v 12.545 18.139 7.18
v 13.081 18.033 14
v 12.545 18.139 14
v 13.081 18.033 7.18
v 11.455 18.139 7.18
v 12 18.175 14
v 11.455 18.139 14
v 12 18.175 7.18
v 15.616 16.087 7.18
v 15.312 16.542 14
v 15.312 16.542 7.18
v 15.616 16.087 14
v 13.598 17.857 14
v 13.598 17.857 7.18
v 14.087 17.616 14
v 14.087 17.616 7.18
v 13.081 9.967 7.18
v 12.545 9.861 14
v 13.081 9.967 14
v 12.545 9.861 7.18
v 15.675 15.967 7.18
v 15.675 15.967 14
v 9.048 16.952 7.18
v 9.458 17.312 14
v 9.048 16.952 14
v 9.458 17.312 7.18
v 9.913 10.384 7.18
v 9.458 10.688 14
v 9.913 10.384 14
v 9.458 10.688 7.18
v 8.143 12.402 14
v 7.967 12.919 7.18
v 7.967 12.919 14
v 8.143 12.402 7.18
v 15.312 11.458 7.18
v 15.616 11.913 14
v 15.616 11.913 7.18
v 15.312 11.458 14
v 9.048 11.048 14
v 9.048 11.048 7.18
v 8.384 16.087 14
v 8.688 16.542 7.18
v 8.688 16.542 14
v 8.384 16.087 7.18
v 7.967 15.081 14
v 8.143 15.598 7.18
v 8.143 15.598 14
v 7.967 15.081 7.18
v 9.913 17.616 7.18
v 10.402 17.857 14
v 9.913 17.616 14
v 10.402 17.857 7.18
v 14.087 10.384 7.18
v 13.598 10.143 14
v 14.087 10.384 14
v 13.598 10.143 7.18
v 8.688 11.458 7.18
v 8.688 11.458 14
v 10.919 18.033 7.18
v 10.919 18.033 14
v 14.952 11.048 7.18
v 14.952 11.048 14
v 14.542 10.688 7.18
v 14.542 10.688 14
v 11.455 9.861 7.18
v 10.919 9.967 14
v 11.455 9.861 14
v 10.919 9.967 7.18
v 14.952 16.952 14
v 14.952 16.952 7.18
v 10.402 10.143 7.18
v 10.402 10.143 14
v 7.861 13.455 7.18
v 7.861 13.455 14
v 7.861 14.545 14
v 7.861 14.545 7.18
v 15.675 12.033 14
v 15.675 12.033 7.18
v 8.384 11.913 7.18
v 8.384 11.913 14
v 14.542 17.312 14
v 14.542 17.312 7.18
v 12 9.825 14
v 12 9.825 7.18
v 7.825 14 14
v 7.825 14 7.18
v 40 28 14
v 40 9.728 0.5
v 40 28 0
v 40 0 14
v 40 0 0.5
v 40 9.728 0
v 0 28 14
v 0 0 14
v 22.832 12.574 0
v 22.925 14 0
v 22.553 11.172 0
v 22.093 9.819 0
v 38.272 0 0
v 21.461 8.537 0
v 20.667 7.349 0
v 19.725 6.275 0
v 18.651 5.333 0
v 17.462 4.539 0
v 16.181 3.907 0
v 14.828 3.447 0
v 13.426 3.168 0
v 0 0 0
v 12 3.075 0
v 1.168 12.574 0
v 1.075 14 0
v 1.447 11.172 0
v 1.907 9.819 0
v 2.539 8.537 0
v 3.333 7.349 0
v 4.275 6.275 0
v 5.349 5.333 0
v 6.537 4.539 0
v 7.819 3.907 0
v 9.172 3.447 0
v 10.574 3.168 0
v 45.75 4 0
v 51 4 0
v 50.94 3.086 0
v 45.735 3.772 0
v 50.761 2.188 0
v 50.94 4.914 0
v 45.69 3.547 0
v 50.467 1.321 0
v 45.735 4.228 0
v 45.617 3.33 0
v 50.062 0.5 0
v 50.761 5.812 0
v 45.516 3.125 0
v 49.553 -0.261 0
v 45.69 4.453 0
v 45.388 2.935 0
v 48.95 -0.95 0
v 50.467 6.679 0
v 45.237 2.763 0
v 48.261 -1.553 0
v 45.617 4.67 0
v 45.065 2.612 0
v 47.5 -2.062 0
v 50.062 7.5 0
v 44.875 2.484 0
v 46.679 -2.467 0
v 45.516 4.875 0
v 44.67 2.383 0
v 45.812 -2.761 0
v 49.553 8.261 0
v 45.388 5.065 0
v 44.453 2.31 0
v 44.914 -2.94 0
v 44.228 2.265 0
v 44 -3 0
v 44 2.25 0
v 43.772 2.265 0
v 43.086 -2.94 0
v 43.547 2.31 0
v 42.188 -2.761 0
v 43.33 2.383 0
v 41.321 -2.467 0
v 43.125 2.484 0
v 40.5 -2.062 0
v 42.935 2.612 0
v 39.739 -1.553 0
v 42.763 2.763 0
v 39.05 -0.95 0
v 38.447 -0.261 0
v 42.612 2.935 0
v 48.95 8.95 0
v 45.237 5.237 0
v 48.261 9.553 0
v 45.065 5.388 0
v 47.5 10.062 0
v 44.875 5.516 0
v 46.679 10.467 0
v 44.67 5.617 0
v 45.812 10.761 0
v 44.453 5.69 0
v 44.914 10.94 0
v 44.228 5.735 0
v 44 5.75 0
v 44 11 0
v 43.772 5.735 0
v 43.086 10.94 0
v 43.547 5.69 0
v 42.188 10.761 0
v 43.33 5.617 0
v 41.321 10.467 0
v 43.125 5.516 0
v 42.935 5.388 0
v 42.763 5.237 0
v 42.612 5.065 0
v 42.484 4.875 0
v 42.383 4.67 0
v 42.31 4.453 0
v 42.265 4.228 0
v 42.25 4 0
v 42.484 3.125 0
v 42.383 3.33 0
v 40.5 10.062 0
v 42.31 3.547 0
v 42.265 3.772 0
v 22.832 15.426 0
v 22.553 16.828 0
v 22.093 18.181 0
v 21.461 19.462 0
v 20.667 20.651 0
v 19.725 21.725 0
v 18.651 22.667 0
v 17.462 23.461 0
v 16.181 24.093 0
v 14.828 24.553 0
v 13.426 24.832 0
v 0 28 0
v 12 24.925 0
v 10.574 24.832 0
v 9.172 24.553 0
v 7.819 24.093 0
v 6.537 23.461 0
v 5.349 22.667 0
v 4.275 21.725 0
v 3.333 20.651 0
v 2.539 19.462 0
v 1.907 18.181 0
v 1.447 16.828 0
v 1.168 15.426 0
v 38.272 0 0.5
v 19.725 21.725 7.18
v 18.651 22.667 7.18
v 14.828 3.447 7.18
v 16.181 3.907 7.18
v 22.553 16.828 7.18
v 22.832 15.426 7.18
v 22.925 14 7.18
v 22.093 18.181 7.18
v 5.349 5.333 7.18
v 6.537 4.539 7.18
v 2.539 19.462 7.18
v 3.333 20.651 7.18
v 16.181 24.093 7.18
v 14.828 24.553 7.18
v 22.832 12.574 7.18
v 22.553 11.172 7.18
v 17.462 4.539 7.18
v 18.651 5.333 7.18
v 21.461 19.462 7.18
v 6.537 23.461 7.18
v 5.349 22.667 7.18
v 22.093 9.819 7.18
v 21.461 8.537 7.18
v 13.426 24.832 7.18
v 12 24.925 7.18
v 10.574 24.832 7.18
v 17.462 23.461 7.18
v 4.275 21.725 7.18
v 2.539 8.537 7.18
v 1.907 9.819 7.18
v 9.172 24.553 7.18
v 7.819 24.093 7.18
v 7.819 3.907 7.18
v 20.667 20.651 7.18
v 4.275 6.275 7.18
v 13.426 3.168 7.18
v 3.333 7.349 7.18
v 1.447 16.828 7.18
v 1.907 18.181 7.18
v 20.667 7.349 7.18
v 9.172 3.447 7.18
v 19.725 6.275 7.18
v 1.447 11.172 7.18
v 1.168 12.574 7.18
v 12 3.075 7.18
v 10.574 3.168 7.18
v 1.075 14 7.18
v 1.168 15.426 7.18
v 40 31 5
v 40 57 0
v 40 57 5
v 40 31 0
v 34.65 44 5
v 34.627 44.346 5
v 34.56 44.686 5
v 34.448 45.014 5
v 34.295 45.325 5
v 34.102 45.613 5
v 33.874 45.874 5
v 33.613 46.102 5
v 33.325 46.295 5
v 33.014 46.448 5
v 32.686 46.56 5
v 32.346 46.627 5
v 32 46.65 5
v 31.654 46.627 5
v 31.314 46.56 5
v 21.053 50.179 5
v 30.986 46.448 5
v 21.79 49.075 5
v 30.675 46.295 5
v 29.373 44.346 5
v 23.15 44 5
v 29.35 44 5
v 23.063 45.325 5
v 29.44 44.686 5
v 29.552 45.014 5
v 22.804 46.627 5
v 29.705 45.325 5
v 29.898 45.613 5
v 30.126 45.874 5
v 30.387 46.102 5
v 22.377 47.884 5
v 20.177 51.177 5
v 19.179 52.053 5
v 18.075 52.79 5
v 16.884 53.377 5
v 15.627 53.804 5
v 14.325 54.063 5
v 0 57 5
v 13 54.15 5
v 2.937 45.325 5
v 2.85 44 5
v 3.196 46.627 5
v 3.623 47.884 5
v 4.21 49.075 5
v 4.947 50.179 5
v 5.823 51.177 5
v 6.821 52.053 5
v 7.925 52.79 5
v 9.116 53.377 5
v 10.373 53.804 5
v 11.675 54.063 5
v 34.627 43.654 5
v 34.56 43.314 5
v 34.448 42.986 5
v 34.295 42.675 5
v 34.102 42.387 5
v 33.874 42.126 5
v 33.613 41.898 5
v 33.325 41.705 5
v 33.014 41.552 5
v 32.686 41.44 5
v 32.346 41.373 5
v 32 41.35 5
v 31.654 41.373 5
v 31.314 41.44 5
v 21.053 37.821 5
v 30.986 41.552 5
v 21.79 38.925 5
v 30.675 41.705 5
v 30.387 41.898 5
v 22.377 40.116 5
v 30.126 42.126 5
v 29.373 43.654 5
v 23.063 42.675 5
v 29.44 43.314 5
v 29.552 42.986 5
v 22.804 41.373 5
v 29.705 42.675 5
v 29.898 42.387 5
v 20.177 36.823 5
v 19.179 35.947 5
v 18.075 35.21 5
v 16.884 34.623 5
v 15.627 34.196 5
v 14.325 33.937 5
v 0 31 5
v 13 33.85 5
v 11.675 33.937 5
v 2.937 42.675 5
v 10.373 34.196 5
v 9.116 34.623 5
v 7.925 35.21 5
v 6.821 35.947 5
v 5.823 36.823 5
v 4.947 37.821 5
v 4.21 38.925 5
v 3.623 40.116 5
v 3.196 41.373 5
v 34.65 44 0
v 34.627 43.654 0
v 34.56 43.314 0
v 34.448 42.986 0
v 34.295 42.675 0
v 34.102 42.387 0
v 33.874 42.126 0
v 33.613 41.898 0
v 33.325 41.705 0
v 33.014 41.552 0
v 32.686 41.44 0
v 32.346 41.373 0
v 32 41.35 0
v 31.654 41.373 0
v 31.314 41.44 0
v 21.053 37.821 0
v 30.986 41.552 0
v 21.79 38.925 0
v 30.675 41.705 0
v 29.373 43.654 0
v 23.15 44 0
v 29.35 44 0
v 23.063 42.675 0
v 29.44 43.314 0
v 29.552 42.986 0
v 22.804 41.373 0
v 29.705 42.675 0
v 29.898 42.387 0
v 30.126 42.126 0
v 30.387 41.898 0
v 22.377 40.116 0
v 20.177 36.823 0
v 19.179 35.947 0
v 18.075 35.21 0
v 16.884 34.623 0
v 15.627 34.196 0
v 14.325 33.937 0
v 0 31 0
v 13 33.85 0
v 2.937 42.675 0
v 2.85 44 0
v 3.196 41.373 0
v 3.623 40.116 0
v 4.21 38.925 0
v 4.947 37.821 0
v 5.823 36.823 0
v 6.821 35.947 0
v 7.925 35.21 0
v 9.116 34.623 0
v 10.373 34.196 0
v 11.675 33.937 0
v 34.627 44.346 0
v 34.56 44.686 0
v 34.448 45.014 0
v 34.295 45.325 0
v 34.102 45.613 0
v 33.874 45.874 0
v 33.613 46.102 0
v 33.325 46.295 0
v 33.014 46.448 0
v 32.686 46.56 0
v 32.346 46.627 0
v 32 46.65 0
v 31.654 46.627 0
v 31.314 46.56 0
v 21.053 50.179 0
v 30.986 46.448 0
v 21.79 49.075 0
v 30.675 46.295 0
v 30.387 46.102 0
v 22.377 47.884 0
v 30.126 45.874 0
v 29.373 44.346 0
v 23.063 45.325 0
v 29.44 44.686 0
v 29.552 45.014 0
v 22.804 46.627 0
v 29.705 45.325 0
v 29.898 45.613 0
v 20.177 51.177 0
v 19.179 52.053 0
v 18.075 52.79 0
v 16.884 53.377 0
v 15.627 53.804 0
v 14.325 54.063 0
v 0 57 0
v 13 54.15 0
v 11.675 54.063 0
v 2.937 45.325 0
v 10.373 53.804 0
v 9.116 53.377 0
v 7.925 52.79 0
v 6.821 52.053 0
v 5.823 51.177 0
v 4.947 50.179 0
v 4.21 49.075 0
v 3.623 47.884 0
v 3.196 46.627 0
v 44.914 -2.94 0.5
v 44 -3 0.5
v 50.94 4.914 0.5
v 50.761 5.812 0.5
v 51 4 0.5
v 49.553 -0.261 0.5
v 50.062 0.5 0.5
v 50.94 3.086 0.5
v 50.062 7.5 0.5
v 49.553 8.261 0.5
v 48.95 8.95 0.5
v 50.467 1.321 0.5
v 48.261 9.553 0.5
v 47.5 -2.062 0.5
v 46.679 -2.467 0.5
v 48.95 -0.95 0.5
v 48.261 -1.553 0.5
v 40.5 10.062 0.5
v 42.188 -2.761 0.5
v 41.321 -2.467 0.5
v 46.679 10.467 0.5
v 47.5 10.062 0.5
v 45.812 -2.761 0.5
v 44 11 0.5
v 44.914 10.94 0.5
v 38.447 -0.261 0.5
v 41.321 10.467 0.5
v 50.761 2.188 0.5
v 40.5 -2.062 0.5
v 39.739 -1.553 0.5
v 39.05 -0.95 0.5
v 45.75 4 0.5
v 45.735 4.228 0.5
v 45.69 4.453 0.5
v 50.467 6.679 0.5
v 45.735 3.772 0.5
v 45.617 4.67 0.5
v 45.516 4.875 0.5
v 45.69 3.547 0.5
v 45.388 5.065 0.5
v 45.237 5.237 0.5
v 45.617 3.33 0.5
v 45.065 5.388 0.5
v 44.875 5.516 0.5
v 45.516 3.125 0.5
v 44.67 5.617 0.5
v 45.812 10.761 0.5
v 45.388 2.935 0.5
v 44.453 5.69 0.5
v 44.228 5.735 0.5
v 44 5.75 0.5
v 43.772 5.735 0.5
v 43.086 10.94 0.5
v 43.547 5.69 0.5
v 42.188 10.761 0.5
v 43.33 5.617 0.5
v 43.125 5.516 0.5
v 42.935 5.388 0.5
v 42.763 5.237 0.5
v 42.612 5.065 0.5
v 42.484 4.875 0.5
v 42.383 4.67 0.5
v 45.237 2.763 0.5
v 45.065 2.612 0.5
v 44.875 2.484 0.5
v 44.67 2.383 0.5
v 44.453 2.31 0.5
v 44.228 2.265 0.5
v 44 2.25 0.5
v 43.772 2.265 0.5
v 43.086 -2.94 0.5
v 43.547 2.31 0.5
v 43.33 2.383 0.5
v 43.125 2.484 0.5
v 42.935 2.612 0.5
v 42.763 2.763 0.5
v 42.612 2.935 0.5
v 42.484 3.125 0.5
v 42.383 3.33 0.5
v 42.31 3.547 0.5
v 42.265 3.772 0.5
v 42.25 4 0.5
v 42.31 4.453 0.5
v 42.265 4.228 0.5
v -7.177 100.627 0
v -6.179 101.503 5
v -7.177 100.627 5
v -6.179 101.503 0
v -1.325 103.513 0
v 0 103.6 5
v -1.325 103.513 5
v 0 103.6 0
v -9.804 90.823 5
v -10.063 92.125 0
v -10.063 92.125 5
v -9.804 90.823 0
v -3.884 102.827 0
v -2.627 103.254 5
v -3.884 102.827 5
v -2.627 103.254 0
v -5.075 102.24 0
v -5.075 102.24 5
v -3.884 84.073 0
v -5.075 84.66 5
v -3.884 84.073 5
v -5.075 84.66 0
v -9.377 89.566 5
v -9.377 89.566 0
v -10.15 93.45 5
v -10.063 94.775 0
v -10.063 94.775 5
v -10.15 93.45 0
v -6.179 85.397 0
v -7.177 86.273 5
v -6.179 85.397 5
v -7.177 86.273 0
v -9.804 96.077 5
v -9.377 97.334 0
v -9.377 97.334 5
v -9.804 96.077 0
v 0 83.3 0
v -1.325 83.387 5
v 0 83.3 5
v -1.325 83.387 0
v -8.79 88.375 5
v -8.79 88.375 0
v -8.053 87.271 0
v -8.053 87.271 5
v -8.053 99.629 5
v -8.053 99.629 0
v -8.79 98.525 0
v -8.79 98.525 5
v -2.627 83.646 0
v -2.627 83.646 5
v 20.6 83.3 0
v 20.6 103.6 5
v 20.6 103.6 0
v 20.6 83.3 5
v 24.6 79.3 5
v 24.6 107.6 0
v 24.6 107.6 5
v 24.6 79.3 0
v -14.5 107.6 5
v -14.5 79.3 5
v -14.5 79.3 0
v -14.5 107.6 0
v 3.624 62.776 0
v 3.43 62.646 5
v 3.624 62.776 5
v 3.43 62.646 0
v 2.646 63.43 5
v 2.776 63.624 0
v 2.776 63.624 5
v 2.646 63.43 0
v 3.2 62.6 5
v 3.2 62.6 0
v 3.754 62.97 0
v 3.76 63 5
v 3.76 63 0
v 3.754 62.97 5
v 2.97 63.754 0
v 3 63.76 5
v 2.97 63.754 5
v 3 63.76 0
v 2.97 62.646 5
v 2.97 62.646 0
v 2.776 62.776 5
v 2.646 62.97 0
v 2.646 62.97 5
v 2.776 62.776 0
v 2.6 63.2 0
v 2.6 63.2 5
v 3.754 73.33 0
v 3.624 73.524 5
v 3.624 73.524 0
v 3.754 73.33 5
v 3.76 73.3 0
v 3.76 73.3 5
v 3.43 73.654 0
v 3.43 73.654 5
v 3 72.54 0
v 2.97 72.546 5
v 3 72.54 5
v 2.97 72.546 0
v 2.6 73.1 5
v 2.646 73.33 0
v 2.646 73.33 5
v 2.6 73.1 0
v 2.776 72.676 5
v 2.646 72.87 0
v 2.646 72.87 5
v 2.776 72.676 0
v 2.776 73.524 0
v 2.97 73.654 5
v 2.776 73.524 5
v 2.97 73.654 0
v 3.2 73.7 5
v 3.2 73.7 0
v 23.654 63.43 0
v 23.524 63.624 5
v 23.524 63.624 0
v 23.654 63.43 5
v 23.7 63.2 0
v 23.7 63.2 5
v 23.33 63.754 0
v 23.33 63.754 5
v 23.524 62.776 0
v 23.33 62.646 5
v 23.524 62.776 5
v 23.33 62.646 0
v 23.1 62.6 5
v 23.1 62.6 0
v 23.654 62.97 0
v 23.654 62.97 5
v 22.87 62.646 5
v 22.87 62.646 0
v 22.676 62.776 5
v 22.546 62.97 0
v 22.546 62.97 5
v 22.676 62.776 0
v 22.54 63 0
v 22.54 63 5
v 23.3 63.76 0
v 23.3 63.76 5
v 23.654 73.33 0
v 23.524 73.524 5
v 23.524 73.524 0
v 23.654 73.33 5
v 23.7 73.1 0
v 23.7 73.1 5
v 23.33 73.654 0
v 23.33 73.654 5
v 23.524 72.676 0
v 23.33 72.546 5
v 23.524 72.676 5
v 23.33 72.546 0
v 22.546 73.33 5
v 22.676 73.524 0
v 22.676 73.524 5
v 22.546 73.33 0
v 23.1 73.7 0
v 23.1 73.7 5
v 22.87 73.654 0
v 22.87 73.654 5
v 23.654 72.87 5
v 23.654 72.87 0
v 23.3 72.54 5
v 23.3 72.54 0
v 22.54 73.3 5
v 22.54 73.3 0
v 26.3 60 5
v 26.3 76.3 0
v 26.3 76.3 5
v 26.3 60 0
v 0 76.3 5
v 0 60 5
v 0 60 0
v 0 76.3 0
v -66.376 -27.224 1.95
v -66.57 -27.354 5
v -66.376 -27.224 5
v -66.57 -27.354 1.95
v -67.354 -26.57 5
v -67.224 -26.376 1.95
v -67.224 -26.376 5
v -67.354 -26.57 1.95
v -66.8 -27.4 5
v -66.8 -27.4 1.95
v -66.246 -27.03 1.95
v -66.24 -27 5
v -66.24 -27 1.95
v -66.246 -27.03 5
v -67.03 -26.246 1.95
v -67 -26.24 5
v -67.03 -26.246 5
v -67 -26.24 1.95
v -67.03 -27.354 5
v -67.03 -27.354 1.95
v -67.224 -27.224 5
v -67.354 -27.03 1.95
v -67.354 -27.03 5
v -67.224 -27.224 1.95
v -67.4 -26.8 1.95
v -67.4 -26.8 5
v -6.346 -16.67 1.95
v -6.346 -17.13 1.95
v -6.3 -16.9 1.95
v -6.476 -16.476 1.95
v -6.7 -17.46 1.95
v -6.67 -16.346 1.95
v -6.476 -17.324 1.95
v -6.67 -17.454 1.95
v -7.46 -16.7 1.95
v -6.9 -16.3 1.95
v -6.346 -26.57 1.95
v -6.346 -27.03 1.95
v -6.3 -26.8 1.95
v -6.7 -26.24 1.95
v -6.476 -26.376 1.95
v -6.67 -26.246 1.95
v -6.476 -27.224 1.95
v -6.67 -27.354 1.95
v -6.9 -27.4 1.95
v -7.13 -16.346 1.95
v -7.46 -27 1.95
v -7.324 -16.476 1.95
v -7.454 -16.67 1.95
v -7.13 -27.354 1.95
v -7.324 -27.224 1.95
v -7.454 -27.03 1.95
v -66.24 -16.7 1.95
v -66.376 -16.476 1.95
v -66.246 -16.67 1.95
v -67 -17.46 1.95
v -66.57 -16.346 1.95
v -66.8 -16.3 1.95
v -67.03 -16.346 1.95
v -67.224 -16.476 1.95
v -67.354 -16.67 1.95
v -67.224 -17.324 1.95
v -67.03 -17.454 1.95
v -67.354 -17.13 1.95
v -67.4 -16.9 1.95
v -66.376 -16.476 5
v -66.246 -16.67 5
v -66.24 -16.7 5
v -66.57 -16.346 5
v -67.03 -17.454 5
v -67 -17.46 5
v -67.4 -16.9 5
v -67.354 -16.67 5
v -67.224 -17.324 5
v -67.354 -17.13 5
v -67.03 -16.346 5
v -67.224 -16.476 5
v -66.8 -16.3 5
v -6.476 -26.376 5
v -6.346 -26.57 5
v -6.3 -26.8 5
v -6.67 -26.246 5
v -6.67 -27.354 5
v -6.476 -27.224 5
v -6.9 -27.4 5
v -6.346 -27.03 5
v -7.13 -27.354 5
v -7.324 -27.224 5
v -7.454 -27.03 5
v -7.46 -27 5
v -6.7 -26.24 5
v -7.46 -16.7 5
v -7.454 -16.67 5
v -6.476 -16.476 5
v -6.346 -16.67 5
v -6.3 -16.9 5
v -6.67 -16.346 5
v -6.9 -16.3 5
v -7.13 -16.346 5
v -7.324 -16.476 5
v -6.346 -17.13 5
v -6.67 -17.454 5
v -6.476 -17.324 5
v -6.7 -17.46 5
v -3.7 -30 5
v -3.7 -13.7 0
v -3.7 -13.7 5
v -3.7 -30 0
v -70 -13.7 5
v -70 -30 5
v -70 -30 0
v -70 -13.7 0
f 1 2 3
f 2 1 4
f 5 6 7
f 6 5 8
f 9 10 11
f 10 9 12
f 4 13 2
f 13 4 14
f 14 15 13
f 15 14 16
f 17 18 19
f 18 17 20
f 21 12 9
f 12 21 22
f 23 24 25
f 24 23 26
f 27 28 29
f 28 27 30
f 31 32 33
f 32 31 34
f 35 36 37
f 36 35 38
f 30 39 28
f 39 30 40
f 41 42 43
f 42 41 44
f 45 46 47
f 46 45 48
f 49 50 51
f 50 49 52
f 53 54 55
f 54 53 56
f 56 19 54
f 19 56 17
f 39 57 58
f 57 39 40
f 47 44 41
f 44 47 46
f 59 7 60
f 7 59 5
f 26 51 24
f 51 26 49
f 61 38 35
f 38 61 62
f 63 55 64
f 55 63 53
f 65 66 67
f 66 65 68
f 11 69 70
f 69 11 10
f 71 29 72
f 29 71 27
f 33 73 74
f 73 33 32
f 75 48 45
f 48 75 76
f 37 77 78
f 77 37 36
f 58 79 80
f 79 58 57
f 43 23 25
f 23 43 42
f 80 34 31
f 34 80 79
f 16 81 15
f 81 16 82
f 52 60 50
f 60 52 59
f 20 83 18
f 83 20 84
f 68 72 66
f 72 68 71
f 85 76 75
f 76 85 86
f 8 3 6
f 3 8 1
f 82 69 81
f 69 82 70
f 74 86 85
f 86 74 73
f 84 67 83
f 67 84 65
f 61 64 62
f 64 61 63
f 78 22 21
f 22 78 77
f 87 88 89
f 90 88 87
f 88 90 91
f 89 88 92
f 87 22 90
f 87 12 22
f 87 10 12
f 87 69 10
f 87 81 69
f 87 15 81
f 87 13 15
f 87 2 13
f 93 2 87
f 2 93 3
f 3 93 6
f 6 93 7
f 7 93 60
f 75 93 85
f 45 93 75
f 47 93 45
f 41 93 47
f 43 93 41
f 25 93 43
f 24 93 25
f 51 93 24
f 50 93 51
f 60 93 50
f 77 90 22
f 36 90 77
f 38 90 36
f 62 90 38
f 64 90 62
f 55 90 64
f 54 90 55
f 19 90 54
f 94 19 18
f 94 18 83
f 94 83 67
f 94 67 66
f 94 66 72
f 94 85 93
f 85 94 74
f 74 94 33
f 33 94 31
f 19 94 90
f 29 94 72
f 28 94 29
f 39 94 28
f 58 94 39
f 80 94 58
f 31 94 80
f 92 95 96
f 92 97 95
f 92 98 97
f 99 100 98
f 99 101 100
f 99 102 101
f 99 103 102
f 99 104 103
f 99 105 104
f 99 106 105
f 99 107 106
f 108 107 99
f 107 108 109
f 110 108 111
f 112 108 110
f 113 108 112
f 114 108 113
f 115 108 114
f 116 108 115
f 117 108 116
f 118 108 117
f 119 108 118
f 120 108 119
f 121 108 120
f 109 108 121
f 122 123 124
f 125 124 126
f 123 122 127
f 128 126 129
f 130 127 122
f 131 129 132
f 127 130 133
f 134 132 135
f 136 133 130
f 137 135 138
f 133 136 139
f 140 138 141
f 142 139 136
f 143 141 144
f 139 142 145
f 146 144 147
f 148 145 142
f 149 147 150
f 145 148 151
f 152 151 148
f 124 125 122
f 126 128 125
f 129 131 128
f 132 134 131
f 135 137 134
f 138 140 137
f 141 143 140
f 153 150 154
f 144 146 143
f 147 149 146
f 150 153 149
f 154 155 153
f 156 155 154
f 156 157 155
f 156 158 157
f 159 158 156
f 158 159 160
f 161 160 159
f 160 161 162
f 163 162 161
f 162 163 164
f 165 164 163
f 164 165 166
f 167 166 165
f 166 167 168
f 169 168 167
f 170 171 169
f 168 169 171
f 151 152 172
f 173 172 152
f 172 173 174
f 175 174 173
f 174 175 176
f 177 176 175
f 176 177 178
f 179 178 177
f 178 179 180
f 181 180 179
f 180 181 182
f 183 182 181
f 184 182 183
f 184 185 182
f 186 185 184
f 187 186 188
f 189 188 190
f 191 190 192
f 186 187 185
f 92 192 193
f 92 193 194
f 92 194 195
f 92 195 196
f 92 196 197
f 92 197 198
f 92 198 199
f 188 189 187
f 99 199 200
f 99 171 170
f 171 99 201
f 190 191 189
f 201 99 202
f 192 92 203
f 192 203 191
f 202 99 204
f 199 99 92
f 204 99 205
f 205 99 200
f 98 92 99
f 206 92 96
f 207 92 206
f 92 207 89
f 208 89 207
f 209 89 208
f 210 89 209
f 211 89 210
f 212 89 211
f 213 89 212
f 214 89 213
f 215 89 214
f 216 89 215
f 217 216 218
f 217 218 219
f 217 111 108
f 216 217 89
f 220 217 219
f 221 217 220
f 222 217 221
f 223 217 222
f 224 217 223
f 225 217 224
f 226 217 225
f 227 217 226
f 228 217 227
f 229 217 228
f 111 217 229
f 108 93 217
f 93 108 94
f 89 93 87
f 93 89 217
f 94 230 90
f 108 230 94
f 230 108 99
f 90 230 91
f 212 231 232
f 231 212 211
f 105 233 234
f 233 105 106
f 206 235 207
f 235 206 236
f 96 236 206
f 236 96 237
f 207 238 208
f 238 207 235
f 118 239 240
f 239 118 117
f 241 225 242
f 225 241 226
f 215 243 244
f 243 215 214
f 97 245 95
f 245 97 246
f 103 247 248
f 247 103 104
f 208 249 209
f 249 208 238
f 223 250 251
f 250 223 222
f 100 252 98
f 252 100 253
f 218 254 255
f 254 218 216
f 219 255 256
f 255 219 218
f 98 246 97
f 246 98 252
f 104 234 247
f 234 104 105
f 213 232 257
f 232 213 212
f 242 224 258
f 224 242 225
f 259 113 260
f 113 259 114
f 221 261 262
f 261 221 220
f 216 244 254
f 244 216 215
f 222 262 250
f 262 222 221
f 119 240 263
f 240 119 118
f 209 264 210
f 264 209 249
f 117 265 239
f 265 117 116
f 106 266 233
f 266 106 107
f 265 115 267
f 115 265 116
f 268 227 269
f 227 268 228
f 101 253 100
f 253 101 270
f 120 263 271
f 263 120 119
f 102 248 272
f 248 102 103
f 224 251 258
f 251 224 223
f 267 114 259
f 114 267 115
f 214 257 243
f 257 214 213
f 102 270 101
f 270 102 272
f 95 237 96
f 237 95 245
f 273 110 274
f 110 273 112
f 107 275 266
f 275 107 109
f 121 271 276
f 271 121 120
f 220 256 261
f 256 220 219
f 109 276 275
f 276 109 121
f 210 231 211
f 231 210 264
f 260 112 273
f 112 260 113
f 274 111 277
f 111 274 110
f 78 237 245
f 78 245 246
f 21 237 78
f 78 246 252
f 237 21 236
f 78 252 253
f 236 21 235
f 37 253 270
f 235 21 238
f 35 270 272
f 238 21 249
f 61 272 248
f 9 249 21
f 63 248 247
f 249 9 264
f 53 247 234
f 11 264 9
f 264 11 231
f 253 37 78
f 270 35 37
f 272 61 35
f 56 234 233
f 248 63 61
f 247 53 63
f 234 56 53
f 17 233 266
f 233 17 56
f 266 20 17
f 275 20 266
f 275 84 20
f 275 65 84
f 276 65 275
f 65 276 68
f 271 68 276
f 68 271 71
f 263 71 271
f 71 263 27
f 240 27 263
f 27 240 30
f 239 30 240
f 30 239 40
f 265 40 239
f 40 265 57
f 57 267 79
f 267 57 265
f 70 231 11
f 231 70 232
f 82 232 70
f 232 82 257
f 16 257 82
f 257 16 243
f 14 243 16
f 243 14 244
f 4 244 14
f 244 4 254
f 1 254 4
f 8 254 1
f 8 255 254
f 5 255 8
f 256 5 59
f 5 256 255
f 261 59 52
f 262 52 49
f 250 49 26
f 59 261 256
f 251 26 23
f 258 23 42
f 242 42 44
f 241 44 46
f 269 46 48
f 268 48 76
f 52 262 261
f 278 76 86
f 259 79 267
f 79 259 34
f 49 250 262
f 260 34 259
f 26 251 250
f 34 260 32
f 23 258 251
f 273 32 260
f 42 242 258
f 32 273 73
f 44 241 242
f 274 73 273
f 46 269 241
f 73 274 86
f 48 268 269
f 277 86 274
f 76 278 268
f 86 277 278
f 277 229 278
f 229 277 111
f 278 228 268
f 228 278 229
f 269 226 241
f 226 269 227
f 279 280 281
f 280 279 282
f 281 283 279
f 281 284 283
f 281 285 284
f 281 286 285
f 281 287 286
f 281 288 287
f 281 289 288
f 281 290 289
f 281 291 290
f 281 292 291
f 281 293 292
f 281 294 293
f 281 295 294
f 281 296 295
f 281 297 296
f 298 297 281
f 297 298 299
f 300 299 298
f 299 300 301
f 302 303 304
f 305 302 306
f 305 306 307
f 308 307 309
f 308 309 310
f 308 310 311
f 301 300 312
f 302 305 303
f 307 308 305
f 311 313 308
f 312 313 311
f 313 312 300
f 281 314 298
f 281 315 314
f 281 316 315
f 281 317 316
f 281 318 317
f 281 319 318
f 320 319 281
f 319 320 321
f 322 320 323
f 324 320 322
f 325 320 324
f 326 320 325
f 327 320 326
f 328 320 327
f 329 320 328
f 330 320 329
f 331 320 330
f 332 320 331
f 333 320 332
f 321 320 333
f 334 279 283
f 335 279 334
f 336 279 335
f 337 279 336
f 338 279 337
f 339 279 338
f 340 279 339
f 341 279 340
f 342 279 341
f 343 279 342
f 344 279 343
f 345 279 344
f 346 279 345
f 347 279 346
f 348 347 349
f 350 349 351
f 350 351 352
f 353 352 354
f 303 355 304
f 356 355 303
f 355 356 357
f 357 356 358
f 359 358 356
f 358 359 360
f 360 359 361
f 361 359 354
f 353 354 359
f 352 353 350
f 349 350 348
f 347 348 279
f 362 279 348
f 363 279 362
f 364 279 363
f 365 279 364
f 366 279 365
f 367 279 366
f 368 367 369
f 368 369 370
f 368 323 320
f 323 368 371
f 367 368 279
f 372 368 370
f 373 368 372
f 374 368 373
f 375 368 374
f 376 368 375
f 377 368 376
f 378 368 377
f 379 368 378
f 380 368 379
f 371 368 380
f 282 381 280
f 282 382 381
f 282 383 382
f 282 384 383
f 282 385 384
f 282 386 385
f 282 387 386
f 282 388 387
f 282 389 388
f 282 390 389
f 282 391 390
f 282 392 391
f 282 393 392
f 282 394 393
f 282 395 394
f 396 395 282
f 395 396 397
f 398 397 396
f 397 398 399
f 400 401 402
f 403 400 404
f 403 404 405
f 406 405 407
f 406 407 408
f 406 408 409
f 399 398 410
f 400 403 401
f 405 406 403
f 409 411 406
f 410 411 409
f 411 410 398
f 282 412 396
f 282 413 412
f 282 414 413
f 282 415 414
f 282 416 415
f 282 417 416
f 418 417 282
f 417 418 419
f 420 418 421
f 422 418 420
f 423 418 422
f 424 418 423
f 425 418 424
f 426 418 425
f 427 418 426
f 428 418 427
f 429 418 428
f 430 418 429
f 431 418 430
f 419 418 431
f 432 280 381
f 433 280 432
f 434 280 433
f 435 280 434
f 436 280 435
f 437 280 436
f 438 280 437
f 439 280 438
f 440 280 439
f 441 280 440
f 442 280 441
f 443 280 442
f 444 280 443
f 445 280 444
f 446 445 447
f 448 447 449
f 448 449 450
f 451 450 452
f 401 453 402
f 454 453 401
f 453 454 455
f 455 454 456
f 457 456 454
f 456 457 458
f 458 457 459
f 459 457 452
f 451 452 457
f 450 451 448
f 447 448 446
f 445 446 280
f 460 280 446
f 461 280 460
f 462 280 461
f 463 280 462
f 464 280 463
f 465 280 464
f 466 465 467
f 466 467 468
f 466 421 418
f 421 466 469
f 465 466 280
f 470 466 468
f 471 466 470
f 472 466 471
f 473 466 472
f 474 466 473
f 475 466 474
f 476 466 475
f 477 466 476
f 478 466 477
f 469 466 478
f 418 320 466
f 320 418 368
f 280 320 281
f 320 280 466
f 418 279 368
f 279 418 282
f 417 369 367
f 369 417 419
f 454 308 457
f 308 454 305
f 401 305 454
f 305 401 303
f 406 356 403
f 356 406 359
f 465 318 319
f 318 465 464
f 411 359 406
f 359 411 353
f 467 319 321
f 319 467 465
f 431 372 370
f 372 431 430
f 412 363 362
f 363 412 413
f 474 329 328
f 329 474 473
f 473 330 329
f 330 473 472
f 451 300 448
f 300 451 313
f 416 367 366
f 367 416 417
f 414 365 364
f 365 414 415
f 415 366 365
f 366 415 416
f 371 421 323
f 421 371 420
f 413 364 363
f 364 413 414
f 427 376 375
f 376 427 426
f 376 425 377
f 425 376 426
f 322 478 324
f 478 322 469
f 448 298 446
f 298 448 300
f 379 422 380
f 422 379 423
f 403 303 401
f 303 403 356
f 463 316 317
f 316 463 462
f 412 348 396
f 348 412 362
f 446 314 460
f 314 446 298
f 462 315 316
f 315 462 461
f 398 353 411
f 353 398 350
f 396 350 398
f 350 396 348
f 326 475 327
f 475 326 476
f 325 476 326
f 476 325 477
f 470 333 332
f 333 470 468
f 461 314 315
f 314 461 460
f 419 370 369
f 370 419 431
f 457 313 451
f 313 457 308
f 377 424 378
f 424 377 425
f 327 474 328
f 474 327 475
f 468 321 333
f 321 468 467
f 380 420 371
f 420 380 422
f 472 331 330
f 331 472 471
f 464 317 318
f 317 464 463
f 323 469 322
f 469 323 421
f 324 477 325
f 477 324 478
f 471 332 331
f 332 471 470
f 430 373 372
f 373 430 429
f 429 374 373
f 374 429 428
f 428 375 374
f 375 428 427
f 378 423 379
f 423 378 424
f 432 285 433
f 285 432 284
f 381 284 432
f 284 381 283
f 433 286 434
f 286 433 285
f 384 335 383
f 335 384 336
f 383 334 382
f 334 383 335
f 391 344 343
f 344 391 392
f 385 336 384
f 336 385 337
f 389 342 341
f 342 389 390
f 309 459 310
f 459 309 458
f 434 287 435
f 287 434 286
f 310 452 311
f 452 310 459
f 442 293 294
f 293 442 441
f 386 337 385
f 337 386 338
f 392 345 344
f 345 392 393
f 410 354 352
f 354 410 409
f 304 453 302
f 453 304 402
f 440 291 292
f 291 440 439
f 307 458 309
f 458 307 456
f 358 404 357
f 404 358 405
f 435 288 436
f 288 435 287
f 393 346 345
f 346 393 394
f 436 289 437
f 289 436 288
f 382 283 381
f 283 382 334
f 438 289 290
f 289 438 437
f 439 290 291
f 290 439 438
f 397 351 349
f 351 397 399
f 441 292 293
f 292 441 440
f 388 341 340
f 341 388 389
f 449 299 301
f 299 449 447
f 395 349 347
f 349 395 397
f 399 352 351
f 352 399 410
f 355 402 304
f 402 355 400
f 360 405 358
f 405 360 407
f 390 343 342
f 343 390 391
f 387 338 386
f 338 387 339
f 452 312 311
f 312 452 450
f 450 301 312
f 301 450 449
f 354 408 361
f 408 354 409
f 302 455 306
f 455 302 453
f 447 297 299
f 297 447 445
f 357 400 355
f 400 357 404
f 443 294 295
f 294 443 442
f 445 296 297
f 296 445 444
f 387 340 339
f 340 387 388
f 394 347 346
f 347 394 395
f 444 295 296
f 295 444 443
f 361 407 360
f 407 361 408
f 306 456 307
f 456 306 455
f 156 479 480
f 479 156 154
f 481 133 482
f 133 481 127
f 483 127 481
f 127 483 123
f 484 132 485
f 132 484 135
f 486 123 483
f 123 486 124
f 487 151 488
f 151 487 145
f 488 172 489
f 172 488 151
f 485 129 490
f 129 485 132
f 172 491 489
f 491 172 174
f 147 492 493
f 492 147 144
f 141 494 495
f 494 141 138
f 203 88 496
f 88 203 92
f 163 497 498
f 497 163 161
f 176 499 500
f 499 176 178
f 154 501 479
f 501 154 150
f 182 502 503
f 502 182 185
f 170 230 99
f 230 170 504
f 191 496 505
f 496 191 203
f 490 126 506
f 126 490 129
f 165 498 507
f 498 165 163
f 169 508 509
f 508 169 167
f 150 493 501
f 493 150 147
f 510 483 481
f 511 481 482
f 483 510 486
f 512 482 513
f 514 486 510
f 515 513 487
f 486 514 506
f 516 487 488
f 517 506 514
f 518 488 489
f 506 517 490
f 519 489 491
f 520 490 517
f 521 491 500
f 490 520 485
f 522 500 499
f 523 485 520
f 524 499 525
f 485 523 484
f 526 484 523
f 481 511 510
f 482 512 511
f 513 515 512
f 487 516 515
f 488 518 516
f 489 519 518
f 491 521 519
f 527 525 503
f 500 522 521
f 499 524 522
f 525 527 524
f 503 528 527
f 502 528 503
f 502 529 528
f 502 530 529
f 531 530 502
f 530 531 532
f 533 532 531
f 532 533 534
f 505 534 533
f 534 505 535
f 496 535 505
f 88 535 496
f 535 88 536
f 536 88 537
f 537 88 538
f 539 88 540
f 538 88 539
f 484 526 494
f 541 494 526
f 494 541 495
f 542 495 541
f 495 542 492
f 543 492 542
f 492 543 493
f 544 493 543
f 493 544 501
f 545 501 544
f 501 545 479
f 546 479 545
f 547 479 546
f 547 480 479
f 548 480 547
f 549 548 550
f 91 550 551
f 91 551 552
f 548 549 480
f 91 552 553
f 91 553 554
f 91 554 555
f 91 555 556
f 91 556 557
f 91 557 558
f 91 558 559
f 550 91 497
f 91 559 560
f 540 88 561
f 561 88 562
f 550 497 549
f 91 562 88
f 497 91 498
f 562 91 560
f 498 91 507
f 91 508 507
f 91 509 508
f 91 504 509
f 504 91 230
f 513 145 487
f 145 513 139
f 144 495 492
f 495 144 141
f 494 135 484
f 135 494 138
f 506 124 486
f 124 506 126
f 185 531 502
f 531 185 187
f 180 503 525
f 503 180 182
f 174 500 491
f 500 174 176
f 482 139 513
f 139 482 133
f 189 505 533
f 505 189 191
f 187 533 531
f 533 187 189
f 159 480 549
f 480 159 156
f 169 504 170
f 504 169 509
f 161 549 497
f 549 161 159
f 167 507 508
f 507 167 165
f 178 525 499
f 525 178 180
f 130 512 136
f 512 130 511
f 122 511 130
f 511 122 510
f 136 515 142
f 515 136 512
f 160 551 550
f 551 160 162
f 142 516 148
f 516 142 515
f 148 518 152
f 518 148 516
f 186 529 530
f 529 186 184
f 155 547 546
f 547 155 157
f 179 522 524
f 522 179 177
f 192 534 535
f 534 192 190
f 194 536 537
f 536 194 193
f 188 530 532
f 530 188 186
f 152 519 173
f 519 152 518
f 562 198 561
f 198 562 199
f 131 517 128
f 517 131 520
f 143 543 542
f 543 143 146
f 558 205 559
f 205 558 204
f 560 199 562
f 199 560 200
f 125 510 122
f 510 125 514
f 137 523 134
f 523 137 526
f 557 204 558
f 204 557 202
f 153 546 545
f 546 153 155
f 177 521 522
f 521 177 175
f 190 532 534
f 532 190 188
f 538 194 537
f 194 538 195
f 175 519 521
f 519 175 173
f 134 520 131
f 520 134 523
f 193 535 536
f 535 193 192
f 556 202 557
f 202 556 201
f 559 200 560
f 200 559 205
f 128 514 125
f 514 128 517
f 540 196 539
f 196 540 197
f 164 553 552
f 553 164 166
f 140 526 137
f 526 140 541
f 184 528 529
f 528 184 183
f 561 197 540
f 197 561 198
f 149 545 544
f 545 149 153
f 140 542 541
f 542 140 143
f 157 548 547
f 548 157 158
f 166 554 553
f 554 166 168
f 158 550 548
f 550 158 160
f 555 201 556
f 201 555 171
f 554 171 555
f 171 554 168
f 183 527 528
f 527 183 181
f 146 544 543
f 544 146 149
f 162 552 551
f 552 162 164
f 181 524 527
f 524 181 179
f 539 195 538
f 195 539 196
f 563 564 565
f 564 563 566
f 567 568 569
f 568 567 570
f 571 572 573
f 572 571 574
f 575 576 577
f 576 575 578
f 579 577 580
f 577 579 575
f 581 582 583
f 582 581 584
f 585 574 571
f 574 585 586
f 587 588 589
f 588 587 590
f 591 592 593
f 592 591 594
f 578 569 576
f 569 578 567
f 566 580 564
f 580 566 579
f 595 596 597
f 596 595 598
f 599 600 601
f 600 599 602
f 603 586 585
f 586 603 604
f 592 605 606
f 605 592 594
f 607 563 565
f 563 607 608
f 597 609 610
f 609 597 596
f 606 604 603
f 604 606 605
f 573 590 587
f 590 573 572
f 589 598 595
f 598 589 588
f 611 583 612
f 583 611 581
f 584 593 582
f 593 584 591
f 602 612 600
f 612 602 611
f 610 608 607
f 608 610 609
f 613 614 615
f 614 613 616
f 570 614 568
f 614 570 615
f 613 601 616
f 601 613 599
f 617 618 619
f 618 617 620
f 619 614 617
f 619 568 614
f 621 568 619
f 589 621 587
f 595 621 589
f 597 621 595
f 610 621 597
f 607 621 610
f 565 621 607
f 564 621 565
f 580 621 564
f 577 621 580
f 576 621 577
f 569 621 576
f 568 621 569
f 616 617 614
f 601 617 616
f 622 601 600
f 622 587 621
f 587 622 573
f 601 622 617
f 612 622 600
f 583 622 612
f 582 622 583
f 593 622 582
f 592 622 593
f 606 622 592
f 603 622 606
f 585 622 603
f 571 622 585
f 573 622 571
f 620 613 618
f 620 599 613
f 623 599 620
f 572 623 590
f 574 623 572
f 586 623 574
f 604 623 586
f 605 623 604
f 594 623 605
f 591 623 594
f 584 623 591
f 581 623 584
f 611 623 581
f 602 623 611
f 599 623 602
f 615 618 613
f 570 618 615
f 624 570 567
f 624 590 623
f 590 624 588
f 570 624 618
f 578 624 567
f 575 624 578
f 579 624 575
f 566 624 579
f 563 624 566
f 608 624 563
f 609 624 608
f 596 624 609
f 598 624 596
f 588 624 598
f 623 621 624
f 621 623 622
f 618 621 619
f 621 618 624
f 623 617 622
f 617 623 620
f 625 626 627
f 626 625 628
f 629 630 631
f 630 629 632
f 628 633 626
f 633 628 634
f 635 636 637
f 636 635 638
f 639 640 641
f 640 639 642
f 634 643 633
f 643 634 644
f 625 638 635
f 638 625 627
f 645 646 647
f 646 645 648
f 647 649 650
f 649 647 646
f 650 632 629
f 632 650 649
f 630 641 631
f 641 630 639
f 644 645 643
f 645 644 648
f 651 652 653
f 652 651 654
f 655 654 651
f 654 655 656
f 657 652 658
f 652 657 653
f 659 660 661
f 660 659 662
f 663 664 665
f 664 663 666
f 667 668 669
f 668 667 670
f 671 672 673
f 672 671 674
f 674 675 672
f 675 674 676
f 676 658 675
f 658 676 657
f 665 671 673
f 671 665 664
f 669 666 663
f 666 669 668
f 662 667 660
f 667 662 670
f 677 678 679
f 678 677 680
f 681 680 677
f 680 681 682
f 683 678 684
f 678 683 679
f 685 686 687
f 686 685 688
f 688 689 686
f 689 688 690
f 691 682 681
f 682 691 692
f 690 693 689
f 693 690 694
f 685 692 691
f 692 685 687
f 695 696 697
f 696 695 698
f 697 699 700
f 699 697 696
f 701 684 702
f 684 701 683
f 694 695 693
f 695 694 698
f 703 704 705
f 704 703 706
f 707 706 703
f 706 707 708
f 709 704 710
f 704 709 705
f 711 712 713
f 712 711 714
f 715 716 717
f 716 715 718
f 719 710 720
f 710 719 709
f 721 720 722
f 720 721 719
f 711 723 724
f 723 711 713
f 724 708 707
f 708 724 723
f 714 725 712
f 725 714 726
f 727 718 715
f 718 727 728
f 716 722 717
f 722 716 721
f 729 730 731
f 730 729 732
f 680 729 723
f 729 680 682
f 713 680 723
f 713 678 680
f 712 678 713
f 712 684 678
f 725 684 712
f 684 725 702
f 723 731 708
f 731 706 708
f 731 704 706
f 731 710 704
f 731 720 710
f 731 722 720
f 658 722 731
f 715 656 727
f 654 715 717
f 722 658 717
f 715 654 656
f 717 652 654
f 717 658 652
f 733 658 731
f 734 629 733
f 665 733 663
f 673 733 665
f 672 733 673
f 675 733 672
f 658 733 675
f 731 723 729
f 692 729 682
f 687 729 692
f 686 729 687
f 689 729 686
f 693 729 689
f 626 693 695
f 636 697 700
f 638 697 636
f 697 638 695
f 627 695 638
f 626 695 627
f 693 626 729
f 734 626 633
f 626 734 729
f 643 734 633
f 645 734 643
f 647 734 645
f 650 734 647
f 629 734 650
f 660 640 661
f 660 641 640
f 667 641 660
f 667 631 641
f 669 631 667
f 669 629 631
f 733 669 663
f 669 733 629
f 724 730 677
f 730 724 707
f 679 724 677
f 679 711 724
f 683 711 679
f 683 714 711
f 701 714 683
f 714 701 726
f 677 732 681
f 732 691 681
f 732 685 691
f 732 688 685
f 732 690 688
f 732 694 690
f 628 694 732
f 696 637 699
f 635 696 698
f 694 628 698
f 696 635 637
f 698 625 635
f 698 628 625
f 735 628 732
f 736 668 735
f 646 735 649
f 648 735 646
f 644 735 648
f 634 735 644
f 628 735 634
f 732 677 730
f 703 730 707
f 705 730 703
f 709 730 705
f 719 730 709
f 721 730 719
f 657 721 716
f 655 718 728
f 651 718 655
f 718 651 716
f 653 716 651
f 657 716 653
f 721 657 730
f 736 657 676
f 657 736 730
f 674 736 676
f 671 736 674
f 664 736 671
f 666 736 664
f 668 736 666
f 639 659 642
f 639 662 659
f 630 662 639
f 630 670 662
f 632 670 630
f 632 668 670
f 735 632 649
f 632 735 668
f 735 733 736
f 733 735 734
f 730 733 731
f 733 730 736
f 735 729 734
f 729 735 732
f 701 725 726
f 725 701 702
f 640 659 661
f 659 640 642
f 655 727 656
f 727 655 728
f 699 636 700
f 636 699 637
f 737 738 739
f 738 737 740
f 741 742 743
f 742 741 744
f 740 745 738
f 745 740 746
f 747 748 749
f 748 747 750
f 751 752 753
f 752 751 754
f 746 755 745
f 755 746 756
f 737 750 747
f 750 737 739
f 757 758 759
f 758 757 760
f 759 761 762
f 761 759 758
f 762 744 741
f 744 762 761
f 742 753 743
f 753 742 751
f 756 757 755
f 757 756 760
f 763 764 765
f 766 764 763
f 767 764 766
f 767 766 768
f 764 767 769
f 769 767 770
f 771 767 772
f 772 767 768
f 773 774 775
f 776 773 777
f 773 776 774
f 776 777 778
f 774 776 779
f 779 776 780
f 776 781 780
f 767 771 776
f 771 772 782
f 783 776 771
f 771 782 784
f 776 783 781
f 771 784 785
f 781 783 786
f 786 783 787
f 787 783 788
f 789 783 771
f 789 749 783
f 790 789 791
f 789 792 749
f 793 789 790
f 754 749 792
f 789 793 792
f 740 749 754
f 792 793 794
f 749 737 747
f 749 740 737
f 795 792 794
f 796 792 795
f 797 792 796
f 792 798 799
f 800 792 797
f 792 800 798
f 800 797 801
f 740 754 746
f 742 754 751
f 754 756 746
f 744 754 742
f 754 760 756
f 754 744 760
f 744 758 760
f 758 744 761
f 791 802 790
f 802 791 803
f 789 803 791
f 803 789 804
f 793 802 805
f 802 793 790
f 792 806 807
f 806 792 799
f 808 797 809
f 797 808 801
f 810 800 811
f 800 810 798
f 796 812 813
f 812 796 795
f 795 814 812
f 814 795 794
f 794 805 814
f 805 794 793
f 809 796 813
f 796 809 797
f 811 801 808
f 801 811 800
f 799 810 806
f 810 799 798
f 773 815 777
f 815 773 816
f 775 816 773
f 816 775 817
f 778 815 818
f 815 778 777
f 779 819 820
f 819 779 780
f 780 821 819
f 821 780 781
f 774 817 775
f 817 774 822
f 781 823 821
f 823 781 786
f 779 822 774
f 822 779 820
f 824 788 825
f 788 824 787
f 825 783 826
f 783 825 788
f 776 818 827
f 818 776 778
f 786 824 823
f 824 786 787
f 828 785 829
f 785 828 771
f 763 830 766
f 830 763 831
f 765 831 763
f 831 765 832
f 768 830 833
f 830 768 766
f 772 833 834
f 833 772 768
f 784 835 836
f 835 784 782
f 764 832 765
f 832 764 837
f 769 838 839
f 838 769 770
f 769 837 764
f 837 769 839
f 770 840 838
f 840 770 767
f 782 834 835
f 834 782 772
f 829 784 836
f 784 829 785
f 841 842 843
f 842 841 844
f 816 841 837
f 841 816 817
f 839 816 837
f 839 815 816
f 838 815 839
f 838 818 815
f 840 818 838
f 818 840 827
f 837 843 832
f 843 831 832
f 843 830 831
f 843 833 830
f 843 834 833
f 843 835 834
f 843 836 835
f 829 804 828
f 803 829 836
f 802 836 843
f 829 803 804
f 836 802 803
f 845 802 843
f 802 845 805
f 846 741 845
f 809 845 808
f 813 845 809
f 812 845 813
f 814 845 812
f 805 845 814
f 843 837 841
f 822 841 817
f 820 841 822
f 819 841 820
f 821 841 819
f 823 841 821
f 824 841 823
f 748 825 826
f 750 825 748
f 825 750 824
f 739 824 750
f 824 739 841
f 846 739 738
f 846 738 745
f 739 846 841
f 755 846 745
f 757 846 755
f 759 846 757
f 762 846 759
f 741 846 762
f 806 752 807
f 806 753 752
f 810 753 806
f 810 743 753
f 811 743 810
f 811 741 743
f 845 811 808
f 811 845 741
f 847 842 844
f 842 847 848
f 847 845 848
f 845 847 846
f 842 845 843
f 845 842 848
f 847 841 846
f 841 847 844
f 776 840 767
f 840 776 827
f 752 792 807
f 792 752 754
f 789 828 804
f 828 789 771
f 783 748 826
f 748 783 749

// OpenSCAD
// Gen-DE — fit coupon: O20/O5 THROUGH pockets at carrier thickness (test on a steel offcut), 608 seat,
// D-flat bore, gap shim, and one bobbin-bay slice (bobbin footprint + bay_clear) to test former fit.
include <parameters.scad>;
$fn = 48;
// D-flat keyed bore: flat faces +X (angle 0 = magnet pocket 0 = index notch)
module dflat_bore(h) {
    intersection() {
        cylinder(d=shaft_bore, h=h);
        translate([-shaft_bore, -shaft_bore, 0]) cube([shaft_bore + dflat_x, 2*shaft_bore, h]);
    }
}
module sector_2d(r_in, r_out, ang) {
    polygon([
        for (a = [-ang/2 : ang/24 : ang/2]) [r_in*cos(a), r_in*sin(a)],
        for (a = [ang/2 : -ang/24 : -ang/2]) [r_out*cos(a), r_out*sin(a)]
    ]);
}
module footprint_2d() { offset(r=wall) sector_2d(coil_id_r, coil_od_r, span_deg); }
module hub_2d()       { offset(delta=-coil_core_inset) sector_2d(coil_id_r, coil_od_r, span_deg); }

block_w = 40; block_d = 28; block_h = 14;
difference() {
    cube([block_w, block_d, block_h]);
    translate([12, block_d/2, -0.02]) cylinder(d=bearing_d, h=bearing_h);
    translate([12, block_d/2, -0.1]) dflat_bore(block_h + 1);
}
translate([0, block_d + 3, 0]) difference() {
    cube([40, 26, carrier_thick]);
    translate([13, 13, -0.1]) cylinder(d=large_pocket_d, h=carrier_thick + 0.2);
    translate([32, 13, -0.1]) cylinder(d=small_pocket_d, h=carrier_thick + 0.2);
}
translate([block_w + 4, 4, 0])
    difference() {
        cylinder(d=spacer_pad_od, h=gap_spacer_h);
        translate([0, 0, -0.1]) cylinder(d=spacer_pad_id, h=gap_spacer_h + 0.2);
    }
// KEYHOLE pole pocket test (2026-10-18): O20 disc pocket + N42 20x10x5 block pocket merged (hull), as on the arcs.
// Drop a disc and a block in: they must push each other onto the two far walls and sit flat. Block pocket has corner reliefs.
translate([0, block_d + 3 + 26 + 3 + block_radial + block_pocket_clear + 6 + 3 + max(block_tangential, large_pocket_d) / 2 + 4, 0]) difference() {
    translate([-14.5, -(max(block_tangential, large_pocket_d) / 2 + 4), 0]) cube([14.5 + abs(block_R_list[0] - R_large) + block_radial / 2 + 4, max(block_tangential, large_pocket_d) + 8, carrier_thick]);
    translate([0, 0, -0.1]) {
        translate([disc_pocket_shift * sign(block_R_list[0] - R_large), 0, 0]) cylinder(d=large_pocket_d, h=carrier_thick + 0.2);
        translate([disc_pocket_shift * sign(block_R_list[0] - R_large), -(block_tangential + block_pocket_clear)/2, 0])
            cube([abs(block_R_list[0] - R_large) - abs(block_pocket_shift) + (block_radial + block_pocket_clear)/2 - disc_pocket_shift * sign(block_R_list[0] - R_large), block_tangential + block_pocket_clear, carrier_thick + 0.2]);
    }
}
// N42 20x10x5 BLOCK through-pocket test (block + block_pocket_clear, 1.2 mm corner reliefs), 2026-10-16
translate([0, block_d + 3 + 26 + 3, 0]) difference() {
    cube([block_tangential + block_pocket_clear + 6, block_radial + block_pocket_clear + 6, carrier_thick]);
    translate([3, 3, -0.1]) cube([block_tangential + block_pocket_clear, block_radial + block_pocket_clear, carrier_thick + 0.2]);
    for (x = [3.2, 3 + block_tangential + block_pocket_clear - 0.2], y = [3.2, 3 + block_radial + block_pocket_clear - 0.2])
        translate([x, y, -0.1]) cylinder(d=1.2, h=carrier_thick + 0.2, $fn=16);
}
// N52 60x10x3 BAR blind-pocket test (2026-10-21): bar + 0.3 mm, depth block2_pocket_depth: the bar face must sit flush with the top.
translate([-70, -30, 0]) difference() {
    cube([block2_tangential + block2_pocket_clear + 6, block2_radial + block2_pocket_clear + 6, carrier_thick]);
    translate([3, 3, carrier_thick - block2_pocket_depth]) cube([block2_tangential + block2_pocket_clear, block2_radial + block2_pocket_clear, carrier_thick]);
    for (x = [3.2, 3 + block2_tangential + block2_pocket_clear - 0.2], y = [3.2, 3 + block2_radial + block2_pocket_clear - 0.2])
        translate([x, y, carrier_thick - block2_pocket_depth]) cylinder(d=1.2, h=carrier_thick, $fn=16);
}
